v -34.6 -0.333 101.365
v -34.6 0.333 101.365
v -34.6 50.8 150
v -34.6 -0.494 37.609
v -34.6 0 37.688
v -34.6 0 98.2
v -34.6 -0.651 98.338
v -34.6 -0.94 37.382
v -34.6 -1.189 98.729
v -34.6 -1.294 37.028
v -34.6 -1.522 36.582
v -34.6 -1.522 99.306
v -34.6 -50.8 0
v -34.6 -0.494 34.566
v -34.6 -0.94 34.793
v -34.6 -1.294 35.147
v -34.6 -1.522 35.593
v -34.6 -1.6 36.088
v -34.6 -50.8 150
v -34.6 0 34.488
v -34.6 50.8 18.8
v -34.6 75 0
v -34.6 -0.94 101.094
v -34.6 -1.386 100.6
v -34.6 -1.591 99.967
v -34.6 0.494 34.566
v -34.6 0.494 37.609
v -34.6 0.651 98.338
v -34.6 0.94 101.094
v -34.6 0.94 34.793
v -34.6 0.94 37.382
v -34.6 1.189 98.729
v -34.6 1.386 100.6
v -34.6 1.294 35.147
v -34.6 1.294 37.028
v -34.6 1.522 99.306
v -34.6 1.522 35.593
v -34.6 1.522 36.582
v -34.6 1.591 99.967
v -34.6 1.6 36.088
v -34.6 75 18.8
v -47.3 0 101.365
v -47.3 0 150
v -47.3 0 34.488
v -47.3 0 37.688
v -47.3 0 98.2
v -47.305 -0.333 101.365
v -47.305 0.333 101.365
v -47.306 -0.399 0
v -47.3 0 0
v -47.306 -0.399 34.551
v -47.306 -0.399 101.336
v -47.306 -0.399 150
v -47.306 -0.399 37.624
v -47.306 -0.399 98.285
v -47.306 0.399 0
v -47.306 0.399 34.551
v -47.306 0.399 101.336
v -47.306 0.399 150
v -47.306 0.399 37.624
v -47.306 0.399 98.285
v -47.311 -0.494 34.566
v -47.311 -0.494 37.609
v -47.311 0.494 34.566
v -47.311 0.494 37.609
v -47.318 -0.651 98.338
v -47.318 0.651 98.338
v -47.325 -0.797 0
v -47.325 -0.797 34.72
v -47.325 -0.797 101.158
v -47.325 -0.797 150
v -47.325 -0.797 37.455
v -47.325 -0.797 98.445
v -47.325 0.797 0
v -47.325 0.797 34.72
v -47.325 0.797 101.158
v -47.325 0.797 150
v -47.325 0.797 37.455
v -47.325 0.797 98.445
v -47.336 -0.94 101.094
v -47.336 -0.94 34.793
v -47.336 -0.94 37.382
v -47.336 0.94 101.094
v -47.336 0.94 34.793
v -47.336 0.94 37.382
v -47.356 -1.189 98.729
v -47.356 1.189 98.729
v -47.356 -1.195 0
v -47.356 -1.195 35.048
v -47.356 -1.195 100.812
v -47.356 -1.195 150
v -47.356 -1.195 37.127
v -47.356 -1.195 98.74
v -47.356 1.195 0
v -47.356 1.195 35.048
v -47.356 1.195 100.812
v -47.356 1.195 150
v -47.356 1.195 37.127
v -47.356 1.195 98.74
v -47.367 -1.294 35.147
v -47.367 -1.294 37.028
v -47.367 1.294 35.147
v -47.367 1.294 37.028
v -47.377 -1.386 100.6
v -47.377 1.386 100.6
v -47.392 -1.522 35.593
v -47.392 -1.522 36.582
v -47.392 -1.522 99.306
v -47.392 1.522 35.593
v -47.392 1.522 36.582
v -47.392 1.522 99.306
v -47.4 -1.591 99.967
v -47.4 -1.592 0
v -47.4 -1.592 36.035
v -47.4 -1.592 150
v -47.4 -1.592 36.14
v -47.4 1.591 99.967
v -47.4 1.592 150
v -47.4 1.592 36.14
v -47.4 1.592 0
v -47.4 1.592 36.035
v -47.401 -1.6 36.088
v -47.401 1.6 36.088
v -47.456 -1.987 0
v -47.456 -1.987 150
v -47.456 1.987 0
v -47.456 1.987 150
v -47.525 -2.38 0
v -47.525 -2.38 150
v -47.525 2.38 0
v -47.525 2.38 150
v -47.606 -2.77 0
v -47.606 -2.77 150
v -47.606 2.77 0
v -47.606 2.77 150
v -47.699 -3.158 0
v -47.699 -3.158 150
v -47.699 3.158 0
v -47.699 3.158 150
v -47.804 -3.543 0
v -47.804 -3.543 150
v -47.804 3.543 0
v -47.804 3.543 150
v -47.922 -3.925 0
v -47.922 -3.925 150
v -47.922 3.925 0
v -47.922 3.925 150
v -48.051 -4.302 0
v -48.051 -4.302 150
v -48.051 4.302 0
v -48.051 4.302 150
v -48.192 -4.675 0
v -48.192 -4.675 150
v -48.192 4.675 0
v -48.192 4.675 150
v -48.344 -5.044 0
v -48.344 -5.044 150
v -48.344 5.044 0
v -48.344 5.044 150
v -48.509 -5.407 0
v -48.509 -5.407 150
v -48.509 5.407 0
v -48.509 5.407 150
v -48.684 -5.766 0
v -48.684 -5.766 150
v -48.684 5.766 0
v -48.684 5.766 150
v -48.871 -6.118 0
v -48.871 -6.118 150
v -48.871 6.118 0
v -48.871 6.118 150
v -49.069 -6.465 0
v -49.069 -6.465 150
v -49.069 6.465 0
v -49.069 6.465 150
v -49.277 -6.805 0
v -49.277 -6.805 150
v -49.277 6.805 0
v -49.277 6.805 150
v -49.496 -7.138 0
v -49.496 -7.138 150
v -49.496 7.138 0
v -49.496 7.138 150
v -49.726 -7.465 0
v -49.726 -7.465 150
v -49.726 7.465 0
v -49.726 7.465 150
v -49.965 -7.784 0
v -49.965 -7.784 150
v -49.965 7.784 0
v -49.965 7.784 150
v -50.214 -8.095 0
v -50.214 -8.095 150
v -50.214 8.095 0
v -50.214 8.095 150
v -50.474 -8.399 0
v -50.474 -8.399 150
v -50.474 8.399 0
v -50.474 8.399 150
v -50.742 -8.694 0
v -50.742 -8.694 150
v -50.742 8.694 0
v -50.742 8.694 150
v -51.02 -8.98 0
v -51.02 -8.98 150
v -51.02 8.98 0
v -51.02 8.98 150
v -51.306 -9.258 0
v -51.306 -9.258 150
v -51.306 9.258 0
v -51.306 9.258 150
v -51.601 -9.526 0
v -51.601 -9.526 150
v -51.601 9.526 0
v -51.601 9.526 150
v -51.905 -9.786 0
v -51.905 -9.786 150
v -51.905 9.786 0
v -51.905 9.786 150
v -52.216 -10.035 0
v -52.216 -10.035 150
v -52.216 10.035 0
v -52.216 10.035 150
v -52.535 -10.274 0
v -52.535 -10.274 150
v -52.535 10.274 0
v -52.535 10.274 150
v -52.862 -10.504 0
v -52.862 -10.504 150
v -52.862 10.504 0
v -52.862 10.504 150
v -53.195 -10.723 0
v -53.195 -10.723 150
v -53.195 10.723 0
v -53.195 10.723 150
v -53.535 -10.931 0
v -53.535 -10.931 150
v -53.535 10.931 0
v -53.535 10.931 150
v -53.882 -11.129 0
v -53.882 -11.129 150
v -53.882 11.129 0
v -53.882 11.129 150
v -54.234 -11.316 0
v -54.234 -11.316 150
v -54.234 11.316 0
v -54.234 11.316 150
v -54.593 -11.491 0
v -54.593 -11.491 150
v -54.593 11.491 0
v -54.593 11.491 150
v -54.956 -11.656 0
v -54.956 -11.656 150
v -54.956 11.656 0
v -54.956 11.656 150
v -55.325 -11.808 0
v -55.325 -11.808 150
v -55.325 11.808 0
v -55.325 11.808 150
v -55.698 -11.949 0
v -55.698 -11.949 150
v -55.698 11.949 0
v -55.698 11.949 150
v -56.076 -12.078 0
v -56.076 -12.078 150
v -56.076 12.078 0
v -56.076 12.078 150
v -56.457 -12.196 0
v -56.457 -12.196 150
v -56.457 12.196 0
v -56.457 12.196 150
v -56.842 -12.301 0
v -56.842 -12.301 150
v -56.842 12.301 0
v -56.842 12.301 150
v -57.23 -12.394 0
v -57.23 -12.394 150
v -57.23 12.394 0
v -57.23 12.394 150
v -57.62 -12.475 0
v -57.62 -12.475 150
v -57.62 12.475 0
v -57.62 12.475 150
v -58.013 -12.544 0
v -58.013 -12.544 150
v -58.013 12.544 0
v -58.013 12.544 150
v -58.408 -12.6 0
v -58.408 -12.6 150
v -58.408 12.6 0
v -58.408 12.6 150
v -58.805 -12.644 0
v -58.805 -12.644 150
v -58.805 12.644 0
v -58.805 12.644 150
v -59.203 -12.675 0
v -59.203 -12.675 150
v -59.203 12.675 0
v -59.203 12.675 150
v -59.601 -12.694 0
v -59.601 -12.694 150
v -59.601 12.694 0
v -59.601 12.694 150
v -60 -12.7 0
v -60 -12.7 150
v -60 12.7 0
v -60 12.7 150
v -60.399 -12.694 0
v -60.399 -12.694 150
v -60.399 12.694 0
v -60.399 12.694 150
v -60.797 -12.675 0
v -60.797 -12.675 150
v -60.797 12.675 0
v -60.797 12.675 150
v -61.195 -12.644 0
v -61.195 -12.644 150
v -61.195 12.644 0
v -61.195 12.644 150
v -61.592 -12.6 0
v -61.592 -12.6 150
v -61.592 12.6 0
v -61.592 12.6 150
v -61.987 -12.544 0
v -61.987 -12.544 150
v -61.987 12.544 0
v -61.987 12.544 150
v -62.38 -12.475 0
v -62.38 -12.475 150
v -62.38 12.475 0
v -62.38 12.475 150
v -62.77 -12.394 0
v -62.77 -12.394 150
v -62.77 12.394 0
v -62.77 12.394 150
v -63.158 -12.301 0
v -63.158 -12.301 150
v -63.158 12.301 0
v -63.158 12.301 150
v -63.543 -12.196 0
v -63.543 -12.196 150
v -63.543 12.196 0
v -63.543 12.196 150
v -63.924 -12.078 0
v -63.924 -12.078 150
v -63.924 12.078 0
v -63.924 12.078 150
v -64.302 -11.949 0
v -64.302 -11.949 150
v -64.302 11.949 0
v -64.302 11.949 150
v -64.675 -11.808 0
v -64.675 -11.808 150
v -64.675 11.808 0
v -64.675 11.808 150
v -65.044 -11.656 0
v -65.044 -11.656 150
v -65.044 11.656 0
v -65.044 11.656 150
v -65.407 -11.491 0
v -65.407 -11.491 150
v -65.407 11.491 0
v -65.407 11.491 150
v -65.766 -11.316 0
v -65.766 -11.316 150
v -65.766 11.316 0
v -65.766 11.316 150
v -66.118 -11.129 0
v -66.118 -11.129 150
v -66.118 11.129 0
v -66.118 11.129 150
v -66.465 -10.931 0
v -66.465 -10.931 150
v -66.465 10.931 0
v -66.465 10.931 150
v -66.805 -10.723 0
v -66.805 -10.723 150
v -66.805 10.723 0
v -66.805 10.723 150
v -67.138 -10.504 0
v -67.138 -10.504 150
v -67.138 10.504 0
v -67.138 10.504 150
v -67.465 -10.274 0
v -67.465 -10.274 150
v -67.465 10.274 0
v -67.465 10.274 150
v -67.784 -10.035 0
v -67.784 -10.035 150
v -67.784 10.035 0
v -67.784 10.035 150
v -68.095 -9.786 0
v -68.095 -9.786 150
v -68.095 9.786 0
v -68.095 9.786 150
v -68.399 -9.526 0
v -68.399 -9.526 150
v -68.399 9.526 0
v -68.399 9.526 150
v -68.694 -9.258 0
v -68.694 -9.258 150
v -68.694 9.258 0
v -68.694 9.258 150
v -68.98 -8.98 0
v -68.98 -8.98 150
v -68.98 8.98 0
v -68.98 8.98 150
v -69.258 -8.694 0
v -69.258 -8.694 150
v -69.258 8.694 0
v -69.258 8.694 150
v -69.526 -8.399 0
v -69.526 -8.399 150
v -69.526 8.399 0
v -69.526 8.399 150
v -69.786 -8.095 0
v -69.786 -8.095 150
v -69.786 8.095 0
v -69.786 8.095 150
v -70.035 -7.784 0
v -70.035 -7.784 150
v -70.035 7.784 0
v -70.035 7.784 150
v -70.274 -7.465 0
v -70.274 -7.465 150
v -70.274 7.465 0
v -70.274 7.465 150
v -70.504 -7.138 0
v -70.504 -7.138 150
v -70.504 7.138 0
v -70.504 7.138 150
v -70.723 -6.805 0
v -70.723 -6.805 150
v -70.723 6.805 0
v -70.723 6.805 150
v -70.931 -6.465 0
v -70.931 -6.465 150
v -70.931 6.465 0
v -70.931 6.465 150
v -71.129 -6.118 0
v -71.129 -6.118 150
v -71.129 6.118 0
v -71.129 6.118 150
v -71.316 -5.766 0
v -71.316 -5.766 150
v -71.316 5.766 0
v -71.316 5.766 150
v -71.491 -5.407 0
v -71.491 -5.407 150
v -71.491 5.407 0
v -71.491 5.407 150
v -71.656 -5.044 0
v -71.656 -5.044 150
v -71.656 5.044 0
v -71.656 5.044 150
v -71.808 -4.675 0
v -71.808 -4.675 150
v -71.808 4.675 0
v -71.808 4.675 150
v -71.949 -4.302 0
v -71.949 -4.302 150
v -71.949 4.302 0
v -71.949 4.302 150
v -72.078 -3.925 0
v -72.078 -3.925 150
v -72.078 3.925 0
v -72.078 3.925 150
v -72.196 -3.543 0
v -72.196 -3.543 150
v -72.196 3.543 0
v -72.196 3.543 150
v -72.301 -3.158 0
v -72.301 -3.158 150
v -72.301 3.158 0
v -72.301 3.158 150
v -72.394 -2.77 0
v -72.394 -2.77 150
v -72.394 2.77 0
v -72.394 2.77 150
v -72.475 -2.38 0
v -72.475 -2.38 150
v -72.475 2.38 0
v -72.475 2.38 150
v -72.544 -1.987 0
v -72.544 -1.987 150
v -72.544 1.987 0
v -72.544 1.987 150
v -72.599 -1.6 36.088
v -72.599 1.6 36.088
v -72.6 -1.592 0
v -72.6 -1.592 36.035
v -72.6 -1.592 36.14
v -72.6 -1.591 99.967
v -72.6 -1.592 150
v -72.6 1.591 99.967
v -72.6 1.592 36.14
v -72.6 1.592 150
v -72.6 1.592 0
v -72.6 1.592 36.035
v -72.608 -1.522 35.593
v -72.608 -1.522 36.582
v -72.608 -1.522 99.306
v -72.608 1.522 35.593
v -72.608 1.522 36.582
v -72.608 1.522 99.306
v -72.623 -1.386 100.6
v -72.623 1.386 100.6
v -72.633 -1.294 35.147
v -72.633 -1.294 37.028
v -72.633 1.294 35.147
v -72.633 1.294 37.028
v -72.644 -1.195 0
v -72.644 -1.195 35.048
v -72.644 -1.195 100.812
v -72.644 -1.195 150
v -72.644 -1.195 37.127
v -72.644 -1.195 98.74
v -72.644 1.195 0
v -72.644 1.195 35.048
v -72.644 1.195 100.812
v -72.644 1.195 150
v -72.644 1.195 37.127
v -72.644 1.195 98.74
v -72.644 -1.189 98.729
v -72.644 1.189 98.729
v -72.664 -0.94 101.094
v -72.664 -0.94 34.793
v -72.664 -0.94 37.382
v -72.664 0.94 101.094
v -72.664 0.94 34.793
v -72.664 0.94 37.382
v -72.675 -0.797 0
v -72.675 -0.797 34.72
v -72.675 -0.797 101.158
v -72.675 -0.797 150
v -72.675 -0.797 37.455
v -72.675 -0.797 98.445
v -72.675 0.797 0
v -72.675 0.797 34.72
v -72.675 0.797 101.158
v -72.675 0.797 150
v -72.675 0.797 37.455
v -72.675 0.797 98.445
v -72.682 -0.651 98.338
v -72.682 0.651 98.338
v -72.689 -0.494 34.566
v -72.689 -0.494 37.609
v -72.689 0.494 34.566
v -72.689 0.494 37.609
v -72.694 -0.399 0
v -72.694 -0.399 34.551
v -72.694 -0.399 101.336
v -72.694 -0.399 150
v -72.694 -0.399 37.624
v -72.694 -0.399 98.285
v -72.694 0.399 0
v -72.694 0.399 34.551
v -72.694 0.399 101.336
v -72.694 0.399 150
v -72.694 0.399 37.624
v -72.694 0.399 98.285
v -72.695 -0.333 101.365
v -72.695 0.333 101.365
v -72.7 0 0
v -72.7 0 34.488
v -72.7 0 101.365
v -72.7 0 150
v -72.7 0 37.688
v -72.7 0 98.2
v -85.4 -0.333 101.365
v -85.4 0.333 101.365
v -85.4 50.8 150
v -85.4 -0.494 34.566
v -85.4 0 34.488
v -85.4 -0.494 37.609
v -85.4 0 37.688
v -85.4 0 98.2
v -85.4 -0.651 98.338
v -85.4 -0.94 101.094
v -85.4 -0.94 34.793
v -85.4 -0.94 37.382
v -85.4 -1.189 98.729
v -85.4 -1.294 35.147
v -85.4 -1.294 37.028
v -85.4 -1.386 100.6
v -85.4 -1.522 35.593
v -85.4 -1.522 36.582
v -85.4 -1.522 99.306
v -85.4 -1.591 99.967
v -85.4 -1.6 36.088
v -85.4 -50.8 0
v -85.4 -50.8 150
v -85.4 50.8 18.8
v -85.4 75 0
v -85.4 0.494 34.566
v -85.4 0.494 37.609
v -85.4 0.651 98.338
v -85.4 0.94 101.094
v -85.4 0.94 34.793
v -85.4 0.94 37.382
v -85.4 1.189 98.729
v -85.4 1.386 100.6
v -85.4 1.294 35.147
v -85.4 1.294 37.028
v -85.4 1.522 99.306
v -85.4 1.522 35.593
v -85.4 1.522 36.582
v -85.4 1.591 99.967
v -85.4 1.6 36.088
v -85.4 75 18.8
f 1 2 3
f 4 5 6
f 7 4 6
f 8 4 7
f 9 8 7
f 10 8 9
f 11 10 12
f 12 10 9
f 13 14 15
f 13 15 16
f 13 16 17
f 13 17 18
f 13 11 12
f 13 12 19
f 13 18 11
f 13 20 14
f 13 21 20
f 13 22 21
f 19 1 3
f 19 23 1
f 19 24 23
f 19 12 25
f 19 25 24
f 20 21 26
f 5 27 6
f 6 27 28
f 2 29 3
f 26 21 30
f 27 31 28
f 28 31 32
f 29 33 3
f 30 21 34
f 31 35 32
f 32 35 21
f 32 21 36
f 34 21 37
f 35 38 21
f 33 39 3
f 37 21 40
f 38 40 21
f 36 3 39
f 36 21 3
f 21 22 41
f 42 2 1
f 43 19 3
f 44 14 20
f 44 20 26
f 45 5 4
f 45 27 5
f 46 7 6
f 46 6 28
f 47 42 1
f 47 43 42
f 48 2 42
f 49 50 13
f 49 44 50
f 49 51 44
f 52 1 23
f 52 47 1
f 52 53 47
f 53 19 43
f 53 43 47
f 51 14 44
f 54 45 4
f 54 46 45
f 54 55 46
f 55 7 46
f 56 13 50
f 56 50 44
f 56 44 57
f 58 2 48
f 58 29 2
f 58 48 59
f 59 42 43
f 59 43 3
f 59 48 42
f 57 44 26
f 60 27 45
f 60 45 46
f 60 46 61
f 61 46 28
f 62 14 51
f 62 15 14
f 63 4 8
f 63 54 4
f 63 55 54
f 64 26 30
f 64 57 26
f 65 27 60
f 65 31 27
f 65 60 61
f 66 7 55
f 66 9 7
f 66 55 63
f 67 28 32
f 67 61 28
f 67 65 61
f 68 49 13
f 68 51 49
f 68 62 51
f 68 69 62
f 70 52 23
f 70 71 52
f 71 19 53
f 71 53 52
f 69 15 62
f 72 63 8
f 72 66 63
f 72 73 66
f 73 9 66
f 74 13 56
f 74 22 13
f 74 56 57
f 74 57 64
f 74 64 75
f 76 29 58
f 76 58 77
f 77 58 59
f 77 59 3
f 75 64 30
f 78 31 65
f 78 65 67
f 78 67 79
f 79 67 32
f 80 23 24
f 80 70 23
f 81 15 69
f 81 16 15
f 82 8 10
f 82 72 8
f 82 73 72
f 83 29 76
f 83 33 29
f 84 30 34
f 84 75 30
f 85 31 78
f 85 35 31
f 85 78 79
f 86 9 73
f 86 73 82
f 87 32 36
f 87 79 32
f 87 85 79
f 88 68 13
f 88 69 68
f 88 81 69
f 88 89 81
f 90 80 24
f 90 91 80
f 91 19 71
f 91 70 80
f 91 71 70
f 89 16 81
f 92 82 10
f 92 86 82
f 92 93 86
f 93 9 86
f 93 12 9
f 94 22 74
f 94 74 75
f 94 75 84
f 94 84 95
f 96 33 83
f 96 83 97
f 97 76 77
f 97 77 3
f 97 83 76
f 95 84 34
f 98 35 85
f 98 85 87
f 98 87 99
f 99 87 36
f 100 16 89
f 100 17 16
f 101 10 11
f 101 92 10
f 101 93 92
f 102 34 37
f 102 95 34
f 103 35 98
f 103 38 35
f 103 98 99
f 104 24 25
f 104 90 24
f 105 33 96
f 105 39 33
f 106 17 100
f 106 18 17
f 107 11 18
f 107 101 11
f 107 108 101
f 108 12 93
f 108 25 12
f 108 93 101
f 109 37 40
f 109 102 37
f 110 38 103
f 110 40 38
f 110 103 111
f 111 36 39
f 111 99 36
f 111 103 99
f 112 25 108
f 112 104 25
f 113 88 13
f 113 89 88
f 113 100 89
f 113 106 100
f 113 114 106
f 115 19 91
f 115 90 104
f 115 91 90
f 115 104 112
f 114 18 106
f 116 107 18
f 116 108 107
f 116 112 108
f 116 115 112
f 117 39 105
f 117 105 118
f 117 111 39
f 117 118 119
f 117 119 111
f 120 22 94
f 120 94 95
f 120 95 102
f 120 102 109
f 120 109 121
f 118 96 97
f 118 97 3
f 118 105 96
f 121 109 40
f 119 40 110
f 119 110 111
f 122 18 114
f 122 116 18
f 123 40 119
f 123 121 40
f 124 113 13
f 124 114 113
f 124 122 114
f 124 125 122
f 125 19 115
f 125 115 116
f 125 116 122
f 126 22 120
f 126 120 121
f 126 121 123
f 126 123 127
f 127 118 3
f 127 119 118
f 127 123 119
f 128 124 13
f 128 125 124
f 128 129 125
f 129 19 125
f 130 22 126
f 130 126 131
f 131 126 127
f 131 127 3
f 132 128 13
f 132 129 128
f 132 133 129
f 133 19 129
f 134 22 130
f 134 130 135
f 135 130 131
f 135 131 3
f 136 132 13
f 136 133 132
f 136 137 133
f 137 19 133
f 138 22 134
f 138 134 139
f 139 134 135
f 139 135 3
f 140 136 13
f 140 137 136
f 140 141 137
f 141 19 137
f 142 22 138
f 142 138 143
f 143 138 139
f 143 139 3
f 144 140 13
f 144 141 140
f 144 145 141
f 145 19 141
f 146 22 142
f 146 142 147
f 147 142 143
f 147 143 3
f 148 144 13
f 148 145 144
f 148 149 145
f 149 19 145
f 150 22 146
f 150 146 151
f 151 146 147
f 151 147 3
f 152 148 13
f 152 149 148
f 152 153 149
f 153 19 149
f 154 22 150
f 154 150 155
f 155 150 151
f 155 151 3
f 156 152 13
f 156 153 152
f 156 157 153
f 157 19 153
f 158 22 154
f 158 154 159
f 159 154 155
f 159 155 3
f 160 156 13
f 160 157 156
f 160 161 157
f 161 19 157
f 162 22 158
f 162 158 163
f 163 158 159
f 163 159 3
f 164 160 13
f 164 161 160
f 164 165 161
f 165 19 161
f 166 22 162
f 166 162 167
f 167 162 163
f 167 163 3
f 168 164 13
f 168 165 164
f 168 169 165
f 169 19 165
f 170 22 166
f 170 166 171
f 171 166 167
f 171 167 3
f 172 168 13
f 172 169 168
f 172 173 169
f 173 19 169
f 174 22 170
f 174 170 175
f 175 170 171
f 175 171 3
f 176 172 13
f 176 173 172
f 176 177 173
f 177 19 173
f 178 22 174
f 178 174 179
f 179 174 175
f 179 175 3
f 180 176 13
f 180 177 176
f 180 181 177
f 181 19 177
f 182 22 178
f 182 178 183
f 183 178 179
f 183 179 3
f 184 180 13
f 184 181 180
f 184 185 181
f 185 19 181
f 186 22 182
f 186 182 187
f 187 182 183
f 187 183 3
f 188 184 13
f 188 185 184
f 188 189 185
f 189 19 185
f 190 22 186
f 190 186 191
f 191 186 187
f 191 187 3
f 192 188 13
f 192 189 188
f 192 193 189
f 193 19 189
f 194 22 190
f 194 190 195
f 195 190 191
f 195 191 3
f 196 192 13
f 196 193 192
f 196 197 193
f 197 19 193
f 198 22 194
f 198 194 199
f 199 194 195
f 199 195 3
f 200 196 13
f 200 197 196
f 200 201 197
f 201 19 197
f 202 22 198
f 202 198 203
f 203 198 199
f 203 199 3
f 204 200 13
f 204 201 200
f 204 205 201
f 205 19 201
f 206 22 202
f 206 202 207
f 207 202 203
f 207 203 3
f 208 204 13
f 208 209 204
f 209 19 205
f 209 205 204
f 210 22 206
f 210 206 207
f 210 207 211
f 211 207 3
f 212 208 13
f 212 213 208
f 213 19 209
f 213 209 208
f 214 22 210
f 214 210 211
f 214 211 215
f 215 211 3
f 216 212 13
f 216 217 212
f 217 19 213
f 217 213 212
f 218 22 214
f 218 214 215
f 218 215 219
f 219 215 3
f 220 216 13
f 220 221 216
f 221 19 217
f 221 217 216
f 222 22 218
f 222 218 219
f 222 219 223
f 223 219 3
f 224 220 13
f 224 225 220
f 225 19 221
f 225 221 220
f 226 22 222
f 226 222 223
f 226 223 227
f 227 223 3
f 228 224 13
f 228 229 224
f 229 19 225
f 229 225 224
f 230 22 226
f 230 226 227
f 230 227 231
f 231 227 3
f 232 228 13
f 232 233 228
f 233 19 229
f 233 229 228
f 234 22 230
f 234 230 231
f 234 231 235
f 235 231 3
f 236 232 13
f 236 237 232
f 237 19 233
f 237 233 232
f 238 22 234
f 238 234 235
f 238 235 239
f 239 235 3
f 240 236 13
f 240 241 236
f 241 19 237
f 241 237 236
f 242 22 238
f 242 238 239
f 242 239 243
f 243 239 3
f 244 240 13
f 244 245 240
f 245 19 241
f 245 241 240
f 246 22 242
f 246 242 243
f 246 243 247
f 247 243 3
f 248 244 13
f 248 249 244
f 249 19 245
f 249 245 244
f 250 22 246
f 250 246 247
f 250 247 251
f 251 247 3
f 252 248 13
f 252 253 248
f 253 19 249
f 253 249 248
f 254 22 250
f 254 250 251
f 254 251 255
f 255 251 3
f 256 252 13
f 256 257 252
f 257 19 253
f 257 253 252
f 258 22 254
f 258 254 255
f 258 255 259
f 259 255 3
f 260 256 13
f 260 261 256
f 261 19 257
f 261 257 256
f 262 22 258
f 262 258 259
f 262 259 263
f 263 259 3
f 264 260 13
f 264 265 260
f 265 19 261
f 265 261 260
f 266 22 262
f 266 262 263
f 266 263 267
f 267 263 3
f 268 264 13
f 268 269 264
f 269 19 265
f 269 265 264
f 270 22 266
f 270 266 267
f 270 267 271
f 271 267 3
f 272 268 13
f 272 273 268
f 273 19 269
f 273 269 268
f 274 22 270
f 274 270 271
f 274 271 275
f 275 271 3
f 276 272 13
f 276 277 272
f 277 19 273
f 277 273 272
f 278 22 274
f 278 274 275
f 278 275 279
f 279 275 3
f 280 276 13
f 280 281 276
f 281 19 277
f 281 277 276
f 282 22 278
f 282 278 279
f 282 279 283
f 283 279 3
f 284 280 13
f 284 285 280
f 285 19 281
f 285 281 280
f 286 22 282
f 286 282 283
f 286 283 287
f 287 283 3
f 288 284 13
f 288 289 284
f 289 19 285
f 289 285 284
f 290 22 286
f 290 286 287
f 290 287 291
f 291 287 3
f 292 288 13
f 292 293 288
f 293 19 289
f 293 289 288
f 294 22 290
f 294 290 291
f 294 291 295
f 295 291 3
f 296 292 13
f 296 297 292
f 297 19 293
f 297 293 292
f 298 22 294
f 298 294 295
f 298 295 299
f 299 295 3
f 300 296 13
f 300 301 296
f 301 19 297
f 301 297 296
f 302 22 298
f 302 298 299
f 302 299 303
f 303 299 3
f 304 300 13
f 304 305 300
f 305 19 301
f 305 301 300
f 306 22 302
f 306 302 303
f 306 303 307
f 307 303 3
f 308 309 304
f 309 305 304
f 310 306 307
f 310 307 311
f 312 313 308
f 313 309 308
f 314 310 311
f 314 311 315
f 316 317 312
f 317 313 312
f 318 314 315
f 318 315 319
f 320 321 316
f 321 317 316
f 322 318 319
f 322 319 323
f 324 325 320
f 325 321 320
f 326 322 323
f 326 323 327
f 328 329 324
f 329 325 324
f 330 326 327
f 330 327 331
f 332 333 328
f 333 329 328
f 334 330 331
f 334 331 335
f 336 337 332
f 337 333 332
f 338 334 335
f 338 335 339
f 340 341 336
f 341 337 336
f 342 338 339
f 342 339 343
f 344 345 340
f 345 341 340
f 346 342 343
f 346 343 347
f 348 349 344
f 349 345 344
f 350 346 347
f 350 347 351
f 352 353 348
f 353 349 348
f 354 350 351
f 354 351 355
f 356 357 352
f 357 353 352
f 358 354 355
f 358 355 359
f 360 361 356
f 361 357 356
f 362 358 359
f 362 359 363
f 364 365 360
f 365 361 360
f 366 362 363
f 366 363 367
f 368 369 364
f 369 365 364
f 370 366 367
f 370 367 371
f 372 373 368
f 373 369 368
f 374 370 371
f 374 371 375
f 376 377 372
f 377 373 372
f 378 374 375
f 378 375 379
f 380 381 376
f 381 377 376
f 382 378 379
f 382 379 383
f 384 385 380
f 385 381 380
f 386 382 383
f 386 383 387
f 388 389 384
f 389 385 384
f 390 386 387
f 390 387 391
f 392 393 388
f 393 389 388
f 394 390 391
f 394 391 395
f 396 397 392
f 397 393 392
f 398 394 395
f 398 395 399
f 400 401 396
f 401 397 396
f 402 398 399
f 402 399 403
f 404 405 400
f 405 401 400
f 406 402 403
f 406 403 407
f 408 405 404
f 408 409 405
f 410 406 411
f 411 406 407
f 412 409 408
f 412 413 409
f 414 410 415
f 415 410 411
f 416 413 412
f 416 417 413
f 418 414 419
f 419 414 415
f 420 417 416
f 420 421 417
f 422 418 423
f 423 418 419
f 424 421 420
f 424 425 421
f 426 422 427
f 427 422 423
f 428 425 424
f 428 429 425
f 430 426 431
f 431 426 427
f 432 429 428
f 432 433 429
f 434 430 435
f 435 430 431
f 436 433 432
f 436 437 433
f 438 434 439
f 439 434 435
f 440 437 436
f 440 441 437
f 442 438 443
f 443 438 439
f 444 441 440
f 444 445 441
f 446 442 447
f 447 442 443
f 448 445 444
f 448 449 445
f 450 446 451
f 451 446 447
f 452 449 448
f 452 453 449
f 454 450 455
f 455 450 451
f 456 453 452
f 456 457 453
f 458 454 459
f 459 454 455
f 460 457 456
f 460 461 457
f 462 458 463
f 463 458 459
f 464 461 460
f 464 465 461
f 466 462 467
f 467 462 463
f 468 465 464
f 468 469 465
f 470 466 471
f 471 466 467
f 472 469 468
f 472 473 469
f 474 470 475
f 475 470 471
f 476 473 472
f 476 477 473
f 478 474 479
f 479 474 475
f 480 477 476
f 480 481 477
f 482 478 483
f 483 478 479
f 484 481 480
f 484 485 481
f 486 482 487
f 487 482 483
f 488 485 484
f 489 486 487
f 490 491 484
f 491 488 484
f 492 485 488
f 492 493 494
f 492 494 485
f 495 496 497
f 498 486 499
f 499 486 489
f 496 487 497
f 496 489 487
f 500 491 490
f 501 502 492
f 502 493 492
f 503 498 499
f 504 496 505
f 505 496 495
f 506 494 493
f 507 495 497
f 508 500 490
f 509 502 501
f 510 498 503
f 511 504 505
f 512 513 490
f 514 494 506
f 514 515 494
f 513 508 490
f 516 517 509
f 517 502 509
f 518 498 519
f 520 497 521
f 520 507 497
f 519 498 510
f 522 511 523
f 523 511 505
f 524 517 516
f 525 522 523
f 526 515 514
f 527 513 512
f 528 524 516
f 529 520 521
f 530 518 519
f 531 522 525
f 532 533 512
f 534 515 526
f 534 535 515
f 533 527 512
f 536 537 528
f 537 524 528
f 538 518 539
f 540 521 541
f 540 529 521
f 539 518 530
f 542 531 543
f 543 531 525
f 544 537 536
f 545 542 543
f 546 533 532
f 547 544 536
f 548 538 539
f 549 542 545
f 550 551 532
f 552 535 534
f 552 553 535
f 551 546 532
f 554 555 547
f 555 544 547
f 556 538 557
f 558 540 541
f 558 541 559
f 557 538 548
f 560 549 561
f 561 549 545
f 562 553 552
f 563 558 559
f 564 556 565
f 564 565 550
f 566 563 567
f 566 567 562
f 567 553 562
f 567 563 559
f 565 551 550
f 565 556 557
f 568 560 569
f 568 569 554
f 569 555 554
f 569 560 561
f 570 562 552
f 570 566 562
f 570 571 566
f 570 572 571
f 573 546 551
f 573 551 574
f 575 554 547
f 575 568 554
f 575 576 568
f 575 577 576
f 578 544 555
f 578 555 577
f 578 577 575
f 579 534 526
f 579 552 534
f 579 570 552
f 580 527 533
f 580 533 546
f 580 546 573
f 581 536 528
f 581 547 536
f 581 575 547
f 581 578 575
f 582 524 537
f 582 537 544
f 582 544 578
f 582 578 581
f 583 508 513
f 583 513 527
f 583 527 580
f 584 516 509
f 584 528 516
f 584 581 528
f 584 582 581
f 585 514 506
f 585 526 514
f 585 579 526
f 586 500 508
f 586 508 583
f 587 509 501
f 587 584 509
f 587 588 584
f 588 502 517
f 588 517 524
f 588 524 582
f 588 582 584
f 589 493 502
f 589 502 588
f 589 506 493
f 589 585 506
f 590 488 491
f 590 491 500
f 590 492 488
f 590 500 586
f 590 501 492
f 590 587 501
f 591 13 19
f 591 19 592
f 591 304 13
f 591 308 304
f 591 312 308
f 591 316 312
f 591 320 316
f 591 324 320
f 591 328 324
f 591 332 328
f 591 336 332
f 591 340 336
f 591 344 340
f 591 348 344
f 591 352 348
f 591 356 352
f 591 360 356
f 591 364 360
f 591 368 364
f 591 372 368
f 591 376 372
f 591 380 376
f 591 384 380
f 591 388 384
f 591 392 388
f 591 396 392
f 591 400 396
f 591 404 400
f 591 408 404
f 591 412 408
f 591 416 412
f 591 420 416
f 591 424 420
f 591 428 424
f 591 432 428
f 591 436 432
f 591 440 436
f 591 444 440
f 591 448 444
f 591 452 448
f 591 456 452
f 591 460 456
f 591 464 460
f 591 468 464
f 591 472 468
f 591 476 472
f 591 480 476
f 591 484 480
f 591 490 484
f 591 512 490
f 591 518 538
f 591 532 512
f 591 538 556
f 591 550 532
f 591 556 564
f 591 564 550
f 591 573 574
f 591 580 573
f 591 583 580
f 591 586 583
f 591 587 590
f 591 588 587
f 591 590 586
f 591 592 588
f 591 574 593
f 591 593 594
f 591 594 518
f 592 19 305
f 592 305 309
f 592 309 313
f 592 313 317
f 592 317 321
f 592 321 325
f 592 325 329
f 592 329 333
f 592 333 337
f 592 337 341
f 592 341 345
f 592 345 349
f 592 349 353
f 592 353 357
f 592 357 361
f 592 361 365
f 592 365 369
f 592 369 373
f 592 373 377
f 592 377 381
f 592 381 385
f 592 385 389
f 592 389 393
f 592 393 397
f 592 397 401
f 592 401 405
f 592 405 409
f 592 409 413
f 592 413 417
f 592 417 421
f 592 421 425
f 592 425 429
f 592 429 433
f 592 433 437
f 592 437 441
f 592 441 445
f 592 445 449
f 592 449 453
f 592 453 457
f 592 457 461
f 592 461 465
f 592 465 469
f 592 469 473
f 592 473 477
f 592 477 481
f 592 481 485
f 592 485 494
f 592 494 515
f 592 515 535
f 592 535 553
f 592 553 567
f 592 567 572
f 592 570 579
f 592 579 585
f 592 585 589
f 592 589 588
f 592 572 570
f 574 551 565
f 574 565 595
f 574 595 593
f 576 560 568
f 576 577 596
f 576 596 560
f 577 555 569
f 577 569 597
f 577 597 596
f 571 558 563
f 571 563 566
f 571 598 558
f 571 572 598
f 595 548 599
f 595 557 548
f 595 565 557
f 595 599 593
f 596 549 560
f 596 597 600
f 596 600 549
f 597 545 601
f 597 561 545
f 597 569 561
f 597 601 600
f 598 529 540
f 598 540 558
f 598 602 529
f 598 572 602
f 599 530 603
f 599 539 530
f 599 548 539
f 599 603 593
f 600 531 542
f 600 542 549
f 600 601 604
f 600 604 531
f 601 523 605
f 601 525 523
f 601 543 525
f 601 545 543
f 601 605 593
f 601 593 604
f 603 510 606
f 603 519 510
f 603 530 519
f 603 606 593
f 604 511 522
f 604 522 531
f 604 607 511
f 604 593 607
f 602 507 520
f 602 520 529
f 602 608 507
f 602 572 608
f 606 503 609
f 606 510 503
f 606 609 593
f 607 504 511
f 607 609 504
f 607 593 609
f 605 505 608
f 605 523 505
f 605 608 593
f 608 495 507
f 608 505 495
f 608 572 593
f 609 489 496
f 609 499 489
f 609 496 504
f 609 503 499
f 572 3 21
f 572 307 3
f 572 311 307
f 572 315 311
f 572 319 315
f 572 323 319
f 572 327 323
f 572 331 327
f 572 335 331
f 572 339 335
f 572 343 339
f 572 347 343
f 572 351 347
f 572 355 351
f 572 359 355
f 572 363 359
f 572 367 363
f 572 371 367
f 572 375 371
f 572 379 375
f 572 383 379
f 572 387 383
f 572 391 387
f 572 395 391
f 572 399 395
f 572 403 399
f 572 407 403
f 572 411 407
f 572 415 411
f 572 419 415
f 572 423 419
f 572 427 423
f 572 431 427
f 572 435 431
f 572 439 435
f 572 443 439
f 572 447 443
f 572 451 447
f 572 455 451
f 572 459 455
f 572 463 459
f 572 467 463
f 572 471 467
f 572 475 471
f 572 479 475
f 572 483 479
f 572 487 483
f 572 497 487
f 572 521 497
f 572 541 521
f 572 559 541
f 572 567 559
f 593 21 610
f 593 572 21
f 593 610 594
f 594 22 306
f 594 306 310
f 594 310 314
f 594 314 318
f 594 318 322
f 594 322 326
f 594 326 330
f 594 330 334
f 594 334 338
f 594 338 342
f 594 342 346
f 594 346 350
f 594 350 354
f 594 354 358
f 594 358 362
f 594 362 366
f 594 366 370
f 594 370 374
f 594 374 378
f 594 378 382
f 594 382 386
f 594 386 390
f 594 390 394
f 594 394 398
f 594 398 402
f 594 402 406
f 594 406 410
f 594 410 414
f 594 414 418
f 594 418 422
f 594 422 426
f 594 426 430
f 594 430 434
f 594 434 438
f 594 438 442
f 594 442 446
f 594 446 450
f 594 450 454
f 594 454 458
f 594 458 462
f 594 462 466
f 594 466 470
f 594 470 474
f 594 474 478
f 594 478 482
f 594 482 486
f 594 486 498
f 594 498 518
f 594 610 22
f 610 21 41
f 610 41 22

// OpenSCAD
include <../../parameters.scad>
use <../888_1014.scad>

draft = false;


translate([-60,0,-300])
        888_1014_part(2, draft);
/*
translate([0,-85,0])
    rotate([0,0,90])
        translate([0,0,-450])
                888_1014_part(3, draft);
*/
